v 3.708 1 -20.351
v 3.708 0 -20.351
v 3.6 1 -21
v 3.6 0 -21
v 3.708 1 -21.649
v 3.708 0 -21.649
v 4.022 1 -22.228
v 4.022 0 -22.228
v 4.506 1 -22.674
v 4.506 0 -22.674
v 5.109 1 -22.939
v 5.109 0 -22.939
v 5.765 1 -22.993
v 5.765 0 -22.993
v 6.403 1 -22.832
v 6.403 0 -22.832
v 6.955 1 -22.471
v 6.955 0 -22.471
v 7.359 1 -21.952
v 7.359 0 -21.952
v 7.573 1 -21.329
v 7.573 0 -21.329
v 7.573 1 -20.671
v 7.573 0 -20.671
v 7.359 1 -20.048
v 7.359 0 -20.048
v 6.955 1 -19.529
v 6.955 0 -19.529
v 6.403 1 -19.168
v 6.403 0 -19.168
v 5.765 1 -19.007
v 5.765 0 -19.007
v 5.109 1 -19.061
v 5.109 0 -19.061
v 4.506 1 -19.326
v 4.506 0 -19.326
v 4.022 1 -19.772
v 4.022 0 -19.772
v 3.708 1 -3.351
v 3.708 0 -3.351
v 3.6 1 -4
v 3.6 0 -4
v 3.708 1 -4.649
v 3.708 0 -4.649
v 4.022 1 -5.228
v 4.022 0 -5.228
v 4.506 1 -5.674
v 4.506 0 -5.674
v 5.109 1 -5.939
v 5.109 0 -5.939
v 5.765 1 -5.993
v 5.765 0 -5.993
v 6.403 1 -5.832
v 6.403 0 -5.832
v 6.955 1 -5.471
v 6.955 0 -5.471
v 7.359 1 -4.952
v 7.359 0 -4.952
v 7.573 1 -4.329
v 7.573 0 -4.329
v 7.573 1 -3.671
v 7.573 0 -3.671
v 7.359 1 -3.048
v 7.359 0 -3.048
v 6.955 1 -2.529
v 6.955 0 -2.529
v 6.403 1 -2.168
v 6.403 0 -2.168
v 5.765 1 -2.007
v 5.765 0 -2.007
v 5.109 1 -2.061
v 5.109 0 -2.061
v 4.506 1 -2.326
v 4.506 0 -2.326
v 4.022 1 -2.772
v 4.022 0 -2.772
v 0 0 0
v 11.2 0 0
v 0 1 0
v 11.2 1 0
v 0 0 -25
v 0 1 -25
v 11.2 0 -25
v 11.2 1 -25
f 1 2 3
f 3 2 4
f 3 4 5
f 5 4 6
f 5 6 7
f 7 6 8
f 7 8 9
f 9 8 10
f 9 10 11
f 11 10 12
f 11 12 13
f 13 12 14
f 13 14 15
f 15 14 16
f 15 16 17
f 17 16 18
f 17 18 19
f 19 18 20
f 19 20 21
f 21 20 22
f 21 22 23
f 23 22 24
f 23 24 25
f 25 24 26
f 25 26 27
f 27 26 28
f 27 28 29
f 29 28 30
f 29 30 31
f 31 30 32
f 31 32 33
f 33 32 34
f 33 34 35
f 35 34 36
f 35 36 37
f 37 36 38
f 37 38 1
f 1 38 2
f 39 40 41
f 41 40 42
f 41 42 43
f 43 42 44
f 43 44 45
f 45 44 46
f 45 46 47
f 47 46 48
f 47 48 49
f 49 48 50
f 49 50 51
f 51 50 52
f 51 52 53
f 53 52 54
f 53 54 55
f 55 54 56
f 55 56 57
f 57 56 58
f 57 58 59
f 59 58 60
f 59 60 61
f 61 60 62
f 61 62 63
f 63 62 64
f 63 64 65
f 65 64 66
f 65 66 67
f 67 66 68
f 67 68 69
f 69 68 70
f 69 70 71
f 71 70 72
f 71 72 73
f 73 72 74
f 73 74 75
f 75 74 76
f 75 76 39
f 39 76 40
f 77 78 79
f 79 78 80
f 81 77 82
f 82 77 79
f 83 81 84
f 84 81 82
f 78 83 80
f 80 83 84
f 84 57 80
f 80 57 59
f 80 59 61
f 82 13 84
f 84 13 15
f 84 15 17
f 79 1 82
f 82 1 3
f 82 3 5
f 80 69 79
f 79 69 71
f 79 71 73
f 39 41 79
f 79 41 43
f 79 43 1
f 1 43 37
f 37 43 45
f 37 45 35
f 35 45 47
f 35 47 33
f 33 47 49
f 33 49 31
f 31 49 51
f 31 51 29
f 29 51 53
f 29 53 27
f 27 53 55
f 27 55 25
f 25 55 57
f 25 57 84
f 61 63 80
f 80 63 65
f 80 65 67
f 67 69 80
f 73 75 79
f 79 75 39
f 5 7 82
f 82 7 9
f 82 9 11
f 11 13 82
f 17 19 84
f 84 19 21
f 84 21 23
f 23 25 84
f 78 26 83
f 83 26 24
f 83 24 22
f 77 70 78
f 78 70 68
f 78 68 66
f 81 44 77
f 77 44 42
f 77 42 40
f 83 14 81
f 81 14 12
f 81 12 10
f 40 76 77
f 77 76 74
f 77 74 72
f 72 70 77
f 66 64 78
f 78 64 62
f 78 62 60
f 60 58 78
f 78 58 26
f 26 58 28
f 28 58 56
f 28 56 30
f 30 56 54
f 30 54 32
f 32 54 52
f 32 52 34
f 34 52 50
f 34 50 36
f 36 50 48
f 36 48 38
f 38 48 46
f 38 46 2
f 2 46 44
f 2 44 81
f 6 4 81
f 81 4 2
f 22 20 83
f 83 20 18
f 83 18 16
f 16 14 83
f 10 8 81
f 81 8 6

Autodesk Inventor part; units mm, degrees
ref_plane "YZ Plane" through (0, 0, 0) normal (1, 0, 0) x (0, 1, 0)
ref_plane "XZ Plane" through (0, 0, 0) normal (0, 1, 0) x (-1, 0, 0)
ref_plane "XY Plane" through (0, 0, 0) normal (0, 0, 1) x (1, 0, 0)
sketch "Sketch1" plane through (0, 0, 0) normal (0, 1, 0) x (-1, 0, 0)
  line L0 (0, 0) -> (-11.2, 0)
  line L1 (-11.2, 0) -> (-11.2, -25)
  line L2 (-11.2, -25) -> (0, -25)
  line L3 (0, -25) -> (0, 0)
  circle A0 centre (-5.6, -4) radius 2
  circle A1 centre (-5.6, -21) radius 2
  dimension "d0" = 25
  dimension "d1" = 11.2
  dimension "d7" = 4
  dimension "d8" = 4
  dimension "d9" = 17
  dimension "d10" = 5.6
  dimension "d11" = 4
  dimension "d12" = 4
extrude "Extrusion1" add sketch "Sketch1" along normal blind 1
properties part number "Adjustments"
